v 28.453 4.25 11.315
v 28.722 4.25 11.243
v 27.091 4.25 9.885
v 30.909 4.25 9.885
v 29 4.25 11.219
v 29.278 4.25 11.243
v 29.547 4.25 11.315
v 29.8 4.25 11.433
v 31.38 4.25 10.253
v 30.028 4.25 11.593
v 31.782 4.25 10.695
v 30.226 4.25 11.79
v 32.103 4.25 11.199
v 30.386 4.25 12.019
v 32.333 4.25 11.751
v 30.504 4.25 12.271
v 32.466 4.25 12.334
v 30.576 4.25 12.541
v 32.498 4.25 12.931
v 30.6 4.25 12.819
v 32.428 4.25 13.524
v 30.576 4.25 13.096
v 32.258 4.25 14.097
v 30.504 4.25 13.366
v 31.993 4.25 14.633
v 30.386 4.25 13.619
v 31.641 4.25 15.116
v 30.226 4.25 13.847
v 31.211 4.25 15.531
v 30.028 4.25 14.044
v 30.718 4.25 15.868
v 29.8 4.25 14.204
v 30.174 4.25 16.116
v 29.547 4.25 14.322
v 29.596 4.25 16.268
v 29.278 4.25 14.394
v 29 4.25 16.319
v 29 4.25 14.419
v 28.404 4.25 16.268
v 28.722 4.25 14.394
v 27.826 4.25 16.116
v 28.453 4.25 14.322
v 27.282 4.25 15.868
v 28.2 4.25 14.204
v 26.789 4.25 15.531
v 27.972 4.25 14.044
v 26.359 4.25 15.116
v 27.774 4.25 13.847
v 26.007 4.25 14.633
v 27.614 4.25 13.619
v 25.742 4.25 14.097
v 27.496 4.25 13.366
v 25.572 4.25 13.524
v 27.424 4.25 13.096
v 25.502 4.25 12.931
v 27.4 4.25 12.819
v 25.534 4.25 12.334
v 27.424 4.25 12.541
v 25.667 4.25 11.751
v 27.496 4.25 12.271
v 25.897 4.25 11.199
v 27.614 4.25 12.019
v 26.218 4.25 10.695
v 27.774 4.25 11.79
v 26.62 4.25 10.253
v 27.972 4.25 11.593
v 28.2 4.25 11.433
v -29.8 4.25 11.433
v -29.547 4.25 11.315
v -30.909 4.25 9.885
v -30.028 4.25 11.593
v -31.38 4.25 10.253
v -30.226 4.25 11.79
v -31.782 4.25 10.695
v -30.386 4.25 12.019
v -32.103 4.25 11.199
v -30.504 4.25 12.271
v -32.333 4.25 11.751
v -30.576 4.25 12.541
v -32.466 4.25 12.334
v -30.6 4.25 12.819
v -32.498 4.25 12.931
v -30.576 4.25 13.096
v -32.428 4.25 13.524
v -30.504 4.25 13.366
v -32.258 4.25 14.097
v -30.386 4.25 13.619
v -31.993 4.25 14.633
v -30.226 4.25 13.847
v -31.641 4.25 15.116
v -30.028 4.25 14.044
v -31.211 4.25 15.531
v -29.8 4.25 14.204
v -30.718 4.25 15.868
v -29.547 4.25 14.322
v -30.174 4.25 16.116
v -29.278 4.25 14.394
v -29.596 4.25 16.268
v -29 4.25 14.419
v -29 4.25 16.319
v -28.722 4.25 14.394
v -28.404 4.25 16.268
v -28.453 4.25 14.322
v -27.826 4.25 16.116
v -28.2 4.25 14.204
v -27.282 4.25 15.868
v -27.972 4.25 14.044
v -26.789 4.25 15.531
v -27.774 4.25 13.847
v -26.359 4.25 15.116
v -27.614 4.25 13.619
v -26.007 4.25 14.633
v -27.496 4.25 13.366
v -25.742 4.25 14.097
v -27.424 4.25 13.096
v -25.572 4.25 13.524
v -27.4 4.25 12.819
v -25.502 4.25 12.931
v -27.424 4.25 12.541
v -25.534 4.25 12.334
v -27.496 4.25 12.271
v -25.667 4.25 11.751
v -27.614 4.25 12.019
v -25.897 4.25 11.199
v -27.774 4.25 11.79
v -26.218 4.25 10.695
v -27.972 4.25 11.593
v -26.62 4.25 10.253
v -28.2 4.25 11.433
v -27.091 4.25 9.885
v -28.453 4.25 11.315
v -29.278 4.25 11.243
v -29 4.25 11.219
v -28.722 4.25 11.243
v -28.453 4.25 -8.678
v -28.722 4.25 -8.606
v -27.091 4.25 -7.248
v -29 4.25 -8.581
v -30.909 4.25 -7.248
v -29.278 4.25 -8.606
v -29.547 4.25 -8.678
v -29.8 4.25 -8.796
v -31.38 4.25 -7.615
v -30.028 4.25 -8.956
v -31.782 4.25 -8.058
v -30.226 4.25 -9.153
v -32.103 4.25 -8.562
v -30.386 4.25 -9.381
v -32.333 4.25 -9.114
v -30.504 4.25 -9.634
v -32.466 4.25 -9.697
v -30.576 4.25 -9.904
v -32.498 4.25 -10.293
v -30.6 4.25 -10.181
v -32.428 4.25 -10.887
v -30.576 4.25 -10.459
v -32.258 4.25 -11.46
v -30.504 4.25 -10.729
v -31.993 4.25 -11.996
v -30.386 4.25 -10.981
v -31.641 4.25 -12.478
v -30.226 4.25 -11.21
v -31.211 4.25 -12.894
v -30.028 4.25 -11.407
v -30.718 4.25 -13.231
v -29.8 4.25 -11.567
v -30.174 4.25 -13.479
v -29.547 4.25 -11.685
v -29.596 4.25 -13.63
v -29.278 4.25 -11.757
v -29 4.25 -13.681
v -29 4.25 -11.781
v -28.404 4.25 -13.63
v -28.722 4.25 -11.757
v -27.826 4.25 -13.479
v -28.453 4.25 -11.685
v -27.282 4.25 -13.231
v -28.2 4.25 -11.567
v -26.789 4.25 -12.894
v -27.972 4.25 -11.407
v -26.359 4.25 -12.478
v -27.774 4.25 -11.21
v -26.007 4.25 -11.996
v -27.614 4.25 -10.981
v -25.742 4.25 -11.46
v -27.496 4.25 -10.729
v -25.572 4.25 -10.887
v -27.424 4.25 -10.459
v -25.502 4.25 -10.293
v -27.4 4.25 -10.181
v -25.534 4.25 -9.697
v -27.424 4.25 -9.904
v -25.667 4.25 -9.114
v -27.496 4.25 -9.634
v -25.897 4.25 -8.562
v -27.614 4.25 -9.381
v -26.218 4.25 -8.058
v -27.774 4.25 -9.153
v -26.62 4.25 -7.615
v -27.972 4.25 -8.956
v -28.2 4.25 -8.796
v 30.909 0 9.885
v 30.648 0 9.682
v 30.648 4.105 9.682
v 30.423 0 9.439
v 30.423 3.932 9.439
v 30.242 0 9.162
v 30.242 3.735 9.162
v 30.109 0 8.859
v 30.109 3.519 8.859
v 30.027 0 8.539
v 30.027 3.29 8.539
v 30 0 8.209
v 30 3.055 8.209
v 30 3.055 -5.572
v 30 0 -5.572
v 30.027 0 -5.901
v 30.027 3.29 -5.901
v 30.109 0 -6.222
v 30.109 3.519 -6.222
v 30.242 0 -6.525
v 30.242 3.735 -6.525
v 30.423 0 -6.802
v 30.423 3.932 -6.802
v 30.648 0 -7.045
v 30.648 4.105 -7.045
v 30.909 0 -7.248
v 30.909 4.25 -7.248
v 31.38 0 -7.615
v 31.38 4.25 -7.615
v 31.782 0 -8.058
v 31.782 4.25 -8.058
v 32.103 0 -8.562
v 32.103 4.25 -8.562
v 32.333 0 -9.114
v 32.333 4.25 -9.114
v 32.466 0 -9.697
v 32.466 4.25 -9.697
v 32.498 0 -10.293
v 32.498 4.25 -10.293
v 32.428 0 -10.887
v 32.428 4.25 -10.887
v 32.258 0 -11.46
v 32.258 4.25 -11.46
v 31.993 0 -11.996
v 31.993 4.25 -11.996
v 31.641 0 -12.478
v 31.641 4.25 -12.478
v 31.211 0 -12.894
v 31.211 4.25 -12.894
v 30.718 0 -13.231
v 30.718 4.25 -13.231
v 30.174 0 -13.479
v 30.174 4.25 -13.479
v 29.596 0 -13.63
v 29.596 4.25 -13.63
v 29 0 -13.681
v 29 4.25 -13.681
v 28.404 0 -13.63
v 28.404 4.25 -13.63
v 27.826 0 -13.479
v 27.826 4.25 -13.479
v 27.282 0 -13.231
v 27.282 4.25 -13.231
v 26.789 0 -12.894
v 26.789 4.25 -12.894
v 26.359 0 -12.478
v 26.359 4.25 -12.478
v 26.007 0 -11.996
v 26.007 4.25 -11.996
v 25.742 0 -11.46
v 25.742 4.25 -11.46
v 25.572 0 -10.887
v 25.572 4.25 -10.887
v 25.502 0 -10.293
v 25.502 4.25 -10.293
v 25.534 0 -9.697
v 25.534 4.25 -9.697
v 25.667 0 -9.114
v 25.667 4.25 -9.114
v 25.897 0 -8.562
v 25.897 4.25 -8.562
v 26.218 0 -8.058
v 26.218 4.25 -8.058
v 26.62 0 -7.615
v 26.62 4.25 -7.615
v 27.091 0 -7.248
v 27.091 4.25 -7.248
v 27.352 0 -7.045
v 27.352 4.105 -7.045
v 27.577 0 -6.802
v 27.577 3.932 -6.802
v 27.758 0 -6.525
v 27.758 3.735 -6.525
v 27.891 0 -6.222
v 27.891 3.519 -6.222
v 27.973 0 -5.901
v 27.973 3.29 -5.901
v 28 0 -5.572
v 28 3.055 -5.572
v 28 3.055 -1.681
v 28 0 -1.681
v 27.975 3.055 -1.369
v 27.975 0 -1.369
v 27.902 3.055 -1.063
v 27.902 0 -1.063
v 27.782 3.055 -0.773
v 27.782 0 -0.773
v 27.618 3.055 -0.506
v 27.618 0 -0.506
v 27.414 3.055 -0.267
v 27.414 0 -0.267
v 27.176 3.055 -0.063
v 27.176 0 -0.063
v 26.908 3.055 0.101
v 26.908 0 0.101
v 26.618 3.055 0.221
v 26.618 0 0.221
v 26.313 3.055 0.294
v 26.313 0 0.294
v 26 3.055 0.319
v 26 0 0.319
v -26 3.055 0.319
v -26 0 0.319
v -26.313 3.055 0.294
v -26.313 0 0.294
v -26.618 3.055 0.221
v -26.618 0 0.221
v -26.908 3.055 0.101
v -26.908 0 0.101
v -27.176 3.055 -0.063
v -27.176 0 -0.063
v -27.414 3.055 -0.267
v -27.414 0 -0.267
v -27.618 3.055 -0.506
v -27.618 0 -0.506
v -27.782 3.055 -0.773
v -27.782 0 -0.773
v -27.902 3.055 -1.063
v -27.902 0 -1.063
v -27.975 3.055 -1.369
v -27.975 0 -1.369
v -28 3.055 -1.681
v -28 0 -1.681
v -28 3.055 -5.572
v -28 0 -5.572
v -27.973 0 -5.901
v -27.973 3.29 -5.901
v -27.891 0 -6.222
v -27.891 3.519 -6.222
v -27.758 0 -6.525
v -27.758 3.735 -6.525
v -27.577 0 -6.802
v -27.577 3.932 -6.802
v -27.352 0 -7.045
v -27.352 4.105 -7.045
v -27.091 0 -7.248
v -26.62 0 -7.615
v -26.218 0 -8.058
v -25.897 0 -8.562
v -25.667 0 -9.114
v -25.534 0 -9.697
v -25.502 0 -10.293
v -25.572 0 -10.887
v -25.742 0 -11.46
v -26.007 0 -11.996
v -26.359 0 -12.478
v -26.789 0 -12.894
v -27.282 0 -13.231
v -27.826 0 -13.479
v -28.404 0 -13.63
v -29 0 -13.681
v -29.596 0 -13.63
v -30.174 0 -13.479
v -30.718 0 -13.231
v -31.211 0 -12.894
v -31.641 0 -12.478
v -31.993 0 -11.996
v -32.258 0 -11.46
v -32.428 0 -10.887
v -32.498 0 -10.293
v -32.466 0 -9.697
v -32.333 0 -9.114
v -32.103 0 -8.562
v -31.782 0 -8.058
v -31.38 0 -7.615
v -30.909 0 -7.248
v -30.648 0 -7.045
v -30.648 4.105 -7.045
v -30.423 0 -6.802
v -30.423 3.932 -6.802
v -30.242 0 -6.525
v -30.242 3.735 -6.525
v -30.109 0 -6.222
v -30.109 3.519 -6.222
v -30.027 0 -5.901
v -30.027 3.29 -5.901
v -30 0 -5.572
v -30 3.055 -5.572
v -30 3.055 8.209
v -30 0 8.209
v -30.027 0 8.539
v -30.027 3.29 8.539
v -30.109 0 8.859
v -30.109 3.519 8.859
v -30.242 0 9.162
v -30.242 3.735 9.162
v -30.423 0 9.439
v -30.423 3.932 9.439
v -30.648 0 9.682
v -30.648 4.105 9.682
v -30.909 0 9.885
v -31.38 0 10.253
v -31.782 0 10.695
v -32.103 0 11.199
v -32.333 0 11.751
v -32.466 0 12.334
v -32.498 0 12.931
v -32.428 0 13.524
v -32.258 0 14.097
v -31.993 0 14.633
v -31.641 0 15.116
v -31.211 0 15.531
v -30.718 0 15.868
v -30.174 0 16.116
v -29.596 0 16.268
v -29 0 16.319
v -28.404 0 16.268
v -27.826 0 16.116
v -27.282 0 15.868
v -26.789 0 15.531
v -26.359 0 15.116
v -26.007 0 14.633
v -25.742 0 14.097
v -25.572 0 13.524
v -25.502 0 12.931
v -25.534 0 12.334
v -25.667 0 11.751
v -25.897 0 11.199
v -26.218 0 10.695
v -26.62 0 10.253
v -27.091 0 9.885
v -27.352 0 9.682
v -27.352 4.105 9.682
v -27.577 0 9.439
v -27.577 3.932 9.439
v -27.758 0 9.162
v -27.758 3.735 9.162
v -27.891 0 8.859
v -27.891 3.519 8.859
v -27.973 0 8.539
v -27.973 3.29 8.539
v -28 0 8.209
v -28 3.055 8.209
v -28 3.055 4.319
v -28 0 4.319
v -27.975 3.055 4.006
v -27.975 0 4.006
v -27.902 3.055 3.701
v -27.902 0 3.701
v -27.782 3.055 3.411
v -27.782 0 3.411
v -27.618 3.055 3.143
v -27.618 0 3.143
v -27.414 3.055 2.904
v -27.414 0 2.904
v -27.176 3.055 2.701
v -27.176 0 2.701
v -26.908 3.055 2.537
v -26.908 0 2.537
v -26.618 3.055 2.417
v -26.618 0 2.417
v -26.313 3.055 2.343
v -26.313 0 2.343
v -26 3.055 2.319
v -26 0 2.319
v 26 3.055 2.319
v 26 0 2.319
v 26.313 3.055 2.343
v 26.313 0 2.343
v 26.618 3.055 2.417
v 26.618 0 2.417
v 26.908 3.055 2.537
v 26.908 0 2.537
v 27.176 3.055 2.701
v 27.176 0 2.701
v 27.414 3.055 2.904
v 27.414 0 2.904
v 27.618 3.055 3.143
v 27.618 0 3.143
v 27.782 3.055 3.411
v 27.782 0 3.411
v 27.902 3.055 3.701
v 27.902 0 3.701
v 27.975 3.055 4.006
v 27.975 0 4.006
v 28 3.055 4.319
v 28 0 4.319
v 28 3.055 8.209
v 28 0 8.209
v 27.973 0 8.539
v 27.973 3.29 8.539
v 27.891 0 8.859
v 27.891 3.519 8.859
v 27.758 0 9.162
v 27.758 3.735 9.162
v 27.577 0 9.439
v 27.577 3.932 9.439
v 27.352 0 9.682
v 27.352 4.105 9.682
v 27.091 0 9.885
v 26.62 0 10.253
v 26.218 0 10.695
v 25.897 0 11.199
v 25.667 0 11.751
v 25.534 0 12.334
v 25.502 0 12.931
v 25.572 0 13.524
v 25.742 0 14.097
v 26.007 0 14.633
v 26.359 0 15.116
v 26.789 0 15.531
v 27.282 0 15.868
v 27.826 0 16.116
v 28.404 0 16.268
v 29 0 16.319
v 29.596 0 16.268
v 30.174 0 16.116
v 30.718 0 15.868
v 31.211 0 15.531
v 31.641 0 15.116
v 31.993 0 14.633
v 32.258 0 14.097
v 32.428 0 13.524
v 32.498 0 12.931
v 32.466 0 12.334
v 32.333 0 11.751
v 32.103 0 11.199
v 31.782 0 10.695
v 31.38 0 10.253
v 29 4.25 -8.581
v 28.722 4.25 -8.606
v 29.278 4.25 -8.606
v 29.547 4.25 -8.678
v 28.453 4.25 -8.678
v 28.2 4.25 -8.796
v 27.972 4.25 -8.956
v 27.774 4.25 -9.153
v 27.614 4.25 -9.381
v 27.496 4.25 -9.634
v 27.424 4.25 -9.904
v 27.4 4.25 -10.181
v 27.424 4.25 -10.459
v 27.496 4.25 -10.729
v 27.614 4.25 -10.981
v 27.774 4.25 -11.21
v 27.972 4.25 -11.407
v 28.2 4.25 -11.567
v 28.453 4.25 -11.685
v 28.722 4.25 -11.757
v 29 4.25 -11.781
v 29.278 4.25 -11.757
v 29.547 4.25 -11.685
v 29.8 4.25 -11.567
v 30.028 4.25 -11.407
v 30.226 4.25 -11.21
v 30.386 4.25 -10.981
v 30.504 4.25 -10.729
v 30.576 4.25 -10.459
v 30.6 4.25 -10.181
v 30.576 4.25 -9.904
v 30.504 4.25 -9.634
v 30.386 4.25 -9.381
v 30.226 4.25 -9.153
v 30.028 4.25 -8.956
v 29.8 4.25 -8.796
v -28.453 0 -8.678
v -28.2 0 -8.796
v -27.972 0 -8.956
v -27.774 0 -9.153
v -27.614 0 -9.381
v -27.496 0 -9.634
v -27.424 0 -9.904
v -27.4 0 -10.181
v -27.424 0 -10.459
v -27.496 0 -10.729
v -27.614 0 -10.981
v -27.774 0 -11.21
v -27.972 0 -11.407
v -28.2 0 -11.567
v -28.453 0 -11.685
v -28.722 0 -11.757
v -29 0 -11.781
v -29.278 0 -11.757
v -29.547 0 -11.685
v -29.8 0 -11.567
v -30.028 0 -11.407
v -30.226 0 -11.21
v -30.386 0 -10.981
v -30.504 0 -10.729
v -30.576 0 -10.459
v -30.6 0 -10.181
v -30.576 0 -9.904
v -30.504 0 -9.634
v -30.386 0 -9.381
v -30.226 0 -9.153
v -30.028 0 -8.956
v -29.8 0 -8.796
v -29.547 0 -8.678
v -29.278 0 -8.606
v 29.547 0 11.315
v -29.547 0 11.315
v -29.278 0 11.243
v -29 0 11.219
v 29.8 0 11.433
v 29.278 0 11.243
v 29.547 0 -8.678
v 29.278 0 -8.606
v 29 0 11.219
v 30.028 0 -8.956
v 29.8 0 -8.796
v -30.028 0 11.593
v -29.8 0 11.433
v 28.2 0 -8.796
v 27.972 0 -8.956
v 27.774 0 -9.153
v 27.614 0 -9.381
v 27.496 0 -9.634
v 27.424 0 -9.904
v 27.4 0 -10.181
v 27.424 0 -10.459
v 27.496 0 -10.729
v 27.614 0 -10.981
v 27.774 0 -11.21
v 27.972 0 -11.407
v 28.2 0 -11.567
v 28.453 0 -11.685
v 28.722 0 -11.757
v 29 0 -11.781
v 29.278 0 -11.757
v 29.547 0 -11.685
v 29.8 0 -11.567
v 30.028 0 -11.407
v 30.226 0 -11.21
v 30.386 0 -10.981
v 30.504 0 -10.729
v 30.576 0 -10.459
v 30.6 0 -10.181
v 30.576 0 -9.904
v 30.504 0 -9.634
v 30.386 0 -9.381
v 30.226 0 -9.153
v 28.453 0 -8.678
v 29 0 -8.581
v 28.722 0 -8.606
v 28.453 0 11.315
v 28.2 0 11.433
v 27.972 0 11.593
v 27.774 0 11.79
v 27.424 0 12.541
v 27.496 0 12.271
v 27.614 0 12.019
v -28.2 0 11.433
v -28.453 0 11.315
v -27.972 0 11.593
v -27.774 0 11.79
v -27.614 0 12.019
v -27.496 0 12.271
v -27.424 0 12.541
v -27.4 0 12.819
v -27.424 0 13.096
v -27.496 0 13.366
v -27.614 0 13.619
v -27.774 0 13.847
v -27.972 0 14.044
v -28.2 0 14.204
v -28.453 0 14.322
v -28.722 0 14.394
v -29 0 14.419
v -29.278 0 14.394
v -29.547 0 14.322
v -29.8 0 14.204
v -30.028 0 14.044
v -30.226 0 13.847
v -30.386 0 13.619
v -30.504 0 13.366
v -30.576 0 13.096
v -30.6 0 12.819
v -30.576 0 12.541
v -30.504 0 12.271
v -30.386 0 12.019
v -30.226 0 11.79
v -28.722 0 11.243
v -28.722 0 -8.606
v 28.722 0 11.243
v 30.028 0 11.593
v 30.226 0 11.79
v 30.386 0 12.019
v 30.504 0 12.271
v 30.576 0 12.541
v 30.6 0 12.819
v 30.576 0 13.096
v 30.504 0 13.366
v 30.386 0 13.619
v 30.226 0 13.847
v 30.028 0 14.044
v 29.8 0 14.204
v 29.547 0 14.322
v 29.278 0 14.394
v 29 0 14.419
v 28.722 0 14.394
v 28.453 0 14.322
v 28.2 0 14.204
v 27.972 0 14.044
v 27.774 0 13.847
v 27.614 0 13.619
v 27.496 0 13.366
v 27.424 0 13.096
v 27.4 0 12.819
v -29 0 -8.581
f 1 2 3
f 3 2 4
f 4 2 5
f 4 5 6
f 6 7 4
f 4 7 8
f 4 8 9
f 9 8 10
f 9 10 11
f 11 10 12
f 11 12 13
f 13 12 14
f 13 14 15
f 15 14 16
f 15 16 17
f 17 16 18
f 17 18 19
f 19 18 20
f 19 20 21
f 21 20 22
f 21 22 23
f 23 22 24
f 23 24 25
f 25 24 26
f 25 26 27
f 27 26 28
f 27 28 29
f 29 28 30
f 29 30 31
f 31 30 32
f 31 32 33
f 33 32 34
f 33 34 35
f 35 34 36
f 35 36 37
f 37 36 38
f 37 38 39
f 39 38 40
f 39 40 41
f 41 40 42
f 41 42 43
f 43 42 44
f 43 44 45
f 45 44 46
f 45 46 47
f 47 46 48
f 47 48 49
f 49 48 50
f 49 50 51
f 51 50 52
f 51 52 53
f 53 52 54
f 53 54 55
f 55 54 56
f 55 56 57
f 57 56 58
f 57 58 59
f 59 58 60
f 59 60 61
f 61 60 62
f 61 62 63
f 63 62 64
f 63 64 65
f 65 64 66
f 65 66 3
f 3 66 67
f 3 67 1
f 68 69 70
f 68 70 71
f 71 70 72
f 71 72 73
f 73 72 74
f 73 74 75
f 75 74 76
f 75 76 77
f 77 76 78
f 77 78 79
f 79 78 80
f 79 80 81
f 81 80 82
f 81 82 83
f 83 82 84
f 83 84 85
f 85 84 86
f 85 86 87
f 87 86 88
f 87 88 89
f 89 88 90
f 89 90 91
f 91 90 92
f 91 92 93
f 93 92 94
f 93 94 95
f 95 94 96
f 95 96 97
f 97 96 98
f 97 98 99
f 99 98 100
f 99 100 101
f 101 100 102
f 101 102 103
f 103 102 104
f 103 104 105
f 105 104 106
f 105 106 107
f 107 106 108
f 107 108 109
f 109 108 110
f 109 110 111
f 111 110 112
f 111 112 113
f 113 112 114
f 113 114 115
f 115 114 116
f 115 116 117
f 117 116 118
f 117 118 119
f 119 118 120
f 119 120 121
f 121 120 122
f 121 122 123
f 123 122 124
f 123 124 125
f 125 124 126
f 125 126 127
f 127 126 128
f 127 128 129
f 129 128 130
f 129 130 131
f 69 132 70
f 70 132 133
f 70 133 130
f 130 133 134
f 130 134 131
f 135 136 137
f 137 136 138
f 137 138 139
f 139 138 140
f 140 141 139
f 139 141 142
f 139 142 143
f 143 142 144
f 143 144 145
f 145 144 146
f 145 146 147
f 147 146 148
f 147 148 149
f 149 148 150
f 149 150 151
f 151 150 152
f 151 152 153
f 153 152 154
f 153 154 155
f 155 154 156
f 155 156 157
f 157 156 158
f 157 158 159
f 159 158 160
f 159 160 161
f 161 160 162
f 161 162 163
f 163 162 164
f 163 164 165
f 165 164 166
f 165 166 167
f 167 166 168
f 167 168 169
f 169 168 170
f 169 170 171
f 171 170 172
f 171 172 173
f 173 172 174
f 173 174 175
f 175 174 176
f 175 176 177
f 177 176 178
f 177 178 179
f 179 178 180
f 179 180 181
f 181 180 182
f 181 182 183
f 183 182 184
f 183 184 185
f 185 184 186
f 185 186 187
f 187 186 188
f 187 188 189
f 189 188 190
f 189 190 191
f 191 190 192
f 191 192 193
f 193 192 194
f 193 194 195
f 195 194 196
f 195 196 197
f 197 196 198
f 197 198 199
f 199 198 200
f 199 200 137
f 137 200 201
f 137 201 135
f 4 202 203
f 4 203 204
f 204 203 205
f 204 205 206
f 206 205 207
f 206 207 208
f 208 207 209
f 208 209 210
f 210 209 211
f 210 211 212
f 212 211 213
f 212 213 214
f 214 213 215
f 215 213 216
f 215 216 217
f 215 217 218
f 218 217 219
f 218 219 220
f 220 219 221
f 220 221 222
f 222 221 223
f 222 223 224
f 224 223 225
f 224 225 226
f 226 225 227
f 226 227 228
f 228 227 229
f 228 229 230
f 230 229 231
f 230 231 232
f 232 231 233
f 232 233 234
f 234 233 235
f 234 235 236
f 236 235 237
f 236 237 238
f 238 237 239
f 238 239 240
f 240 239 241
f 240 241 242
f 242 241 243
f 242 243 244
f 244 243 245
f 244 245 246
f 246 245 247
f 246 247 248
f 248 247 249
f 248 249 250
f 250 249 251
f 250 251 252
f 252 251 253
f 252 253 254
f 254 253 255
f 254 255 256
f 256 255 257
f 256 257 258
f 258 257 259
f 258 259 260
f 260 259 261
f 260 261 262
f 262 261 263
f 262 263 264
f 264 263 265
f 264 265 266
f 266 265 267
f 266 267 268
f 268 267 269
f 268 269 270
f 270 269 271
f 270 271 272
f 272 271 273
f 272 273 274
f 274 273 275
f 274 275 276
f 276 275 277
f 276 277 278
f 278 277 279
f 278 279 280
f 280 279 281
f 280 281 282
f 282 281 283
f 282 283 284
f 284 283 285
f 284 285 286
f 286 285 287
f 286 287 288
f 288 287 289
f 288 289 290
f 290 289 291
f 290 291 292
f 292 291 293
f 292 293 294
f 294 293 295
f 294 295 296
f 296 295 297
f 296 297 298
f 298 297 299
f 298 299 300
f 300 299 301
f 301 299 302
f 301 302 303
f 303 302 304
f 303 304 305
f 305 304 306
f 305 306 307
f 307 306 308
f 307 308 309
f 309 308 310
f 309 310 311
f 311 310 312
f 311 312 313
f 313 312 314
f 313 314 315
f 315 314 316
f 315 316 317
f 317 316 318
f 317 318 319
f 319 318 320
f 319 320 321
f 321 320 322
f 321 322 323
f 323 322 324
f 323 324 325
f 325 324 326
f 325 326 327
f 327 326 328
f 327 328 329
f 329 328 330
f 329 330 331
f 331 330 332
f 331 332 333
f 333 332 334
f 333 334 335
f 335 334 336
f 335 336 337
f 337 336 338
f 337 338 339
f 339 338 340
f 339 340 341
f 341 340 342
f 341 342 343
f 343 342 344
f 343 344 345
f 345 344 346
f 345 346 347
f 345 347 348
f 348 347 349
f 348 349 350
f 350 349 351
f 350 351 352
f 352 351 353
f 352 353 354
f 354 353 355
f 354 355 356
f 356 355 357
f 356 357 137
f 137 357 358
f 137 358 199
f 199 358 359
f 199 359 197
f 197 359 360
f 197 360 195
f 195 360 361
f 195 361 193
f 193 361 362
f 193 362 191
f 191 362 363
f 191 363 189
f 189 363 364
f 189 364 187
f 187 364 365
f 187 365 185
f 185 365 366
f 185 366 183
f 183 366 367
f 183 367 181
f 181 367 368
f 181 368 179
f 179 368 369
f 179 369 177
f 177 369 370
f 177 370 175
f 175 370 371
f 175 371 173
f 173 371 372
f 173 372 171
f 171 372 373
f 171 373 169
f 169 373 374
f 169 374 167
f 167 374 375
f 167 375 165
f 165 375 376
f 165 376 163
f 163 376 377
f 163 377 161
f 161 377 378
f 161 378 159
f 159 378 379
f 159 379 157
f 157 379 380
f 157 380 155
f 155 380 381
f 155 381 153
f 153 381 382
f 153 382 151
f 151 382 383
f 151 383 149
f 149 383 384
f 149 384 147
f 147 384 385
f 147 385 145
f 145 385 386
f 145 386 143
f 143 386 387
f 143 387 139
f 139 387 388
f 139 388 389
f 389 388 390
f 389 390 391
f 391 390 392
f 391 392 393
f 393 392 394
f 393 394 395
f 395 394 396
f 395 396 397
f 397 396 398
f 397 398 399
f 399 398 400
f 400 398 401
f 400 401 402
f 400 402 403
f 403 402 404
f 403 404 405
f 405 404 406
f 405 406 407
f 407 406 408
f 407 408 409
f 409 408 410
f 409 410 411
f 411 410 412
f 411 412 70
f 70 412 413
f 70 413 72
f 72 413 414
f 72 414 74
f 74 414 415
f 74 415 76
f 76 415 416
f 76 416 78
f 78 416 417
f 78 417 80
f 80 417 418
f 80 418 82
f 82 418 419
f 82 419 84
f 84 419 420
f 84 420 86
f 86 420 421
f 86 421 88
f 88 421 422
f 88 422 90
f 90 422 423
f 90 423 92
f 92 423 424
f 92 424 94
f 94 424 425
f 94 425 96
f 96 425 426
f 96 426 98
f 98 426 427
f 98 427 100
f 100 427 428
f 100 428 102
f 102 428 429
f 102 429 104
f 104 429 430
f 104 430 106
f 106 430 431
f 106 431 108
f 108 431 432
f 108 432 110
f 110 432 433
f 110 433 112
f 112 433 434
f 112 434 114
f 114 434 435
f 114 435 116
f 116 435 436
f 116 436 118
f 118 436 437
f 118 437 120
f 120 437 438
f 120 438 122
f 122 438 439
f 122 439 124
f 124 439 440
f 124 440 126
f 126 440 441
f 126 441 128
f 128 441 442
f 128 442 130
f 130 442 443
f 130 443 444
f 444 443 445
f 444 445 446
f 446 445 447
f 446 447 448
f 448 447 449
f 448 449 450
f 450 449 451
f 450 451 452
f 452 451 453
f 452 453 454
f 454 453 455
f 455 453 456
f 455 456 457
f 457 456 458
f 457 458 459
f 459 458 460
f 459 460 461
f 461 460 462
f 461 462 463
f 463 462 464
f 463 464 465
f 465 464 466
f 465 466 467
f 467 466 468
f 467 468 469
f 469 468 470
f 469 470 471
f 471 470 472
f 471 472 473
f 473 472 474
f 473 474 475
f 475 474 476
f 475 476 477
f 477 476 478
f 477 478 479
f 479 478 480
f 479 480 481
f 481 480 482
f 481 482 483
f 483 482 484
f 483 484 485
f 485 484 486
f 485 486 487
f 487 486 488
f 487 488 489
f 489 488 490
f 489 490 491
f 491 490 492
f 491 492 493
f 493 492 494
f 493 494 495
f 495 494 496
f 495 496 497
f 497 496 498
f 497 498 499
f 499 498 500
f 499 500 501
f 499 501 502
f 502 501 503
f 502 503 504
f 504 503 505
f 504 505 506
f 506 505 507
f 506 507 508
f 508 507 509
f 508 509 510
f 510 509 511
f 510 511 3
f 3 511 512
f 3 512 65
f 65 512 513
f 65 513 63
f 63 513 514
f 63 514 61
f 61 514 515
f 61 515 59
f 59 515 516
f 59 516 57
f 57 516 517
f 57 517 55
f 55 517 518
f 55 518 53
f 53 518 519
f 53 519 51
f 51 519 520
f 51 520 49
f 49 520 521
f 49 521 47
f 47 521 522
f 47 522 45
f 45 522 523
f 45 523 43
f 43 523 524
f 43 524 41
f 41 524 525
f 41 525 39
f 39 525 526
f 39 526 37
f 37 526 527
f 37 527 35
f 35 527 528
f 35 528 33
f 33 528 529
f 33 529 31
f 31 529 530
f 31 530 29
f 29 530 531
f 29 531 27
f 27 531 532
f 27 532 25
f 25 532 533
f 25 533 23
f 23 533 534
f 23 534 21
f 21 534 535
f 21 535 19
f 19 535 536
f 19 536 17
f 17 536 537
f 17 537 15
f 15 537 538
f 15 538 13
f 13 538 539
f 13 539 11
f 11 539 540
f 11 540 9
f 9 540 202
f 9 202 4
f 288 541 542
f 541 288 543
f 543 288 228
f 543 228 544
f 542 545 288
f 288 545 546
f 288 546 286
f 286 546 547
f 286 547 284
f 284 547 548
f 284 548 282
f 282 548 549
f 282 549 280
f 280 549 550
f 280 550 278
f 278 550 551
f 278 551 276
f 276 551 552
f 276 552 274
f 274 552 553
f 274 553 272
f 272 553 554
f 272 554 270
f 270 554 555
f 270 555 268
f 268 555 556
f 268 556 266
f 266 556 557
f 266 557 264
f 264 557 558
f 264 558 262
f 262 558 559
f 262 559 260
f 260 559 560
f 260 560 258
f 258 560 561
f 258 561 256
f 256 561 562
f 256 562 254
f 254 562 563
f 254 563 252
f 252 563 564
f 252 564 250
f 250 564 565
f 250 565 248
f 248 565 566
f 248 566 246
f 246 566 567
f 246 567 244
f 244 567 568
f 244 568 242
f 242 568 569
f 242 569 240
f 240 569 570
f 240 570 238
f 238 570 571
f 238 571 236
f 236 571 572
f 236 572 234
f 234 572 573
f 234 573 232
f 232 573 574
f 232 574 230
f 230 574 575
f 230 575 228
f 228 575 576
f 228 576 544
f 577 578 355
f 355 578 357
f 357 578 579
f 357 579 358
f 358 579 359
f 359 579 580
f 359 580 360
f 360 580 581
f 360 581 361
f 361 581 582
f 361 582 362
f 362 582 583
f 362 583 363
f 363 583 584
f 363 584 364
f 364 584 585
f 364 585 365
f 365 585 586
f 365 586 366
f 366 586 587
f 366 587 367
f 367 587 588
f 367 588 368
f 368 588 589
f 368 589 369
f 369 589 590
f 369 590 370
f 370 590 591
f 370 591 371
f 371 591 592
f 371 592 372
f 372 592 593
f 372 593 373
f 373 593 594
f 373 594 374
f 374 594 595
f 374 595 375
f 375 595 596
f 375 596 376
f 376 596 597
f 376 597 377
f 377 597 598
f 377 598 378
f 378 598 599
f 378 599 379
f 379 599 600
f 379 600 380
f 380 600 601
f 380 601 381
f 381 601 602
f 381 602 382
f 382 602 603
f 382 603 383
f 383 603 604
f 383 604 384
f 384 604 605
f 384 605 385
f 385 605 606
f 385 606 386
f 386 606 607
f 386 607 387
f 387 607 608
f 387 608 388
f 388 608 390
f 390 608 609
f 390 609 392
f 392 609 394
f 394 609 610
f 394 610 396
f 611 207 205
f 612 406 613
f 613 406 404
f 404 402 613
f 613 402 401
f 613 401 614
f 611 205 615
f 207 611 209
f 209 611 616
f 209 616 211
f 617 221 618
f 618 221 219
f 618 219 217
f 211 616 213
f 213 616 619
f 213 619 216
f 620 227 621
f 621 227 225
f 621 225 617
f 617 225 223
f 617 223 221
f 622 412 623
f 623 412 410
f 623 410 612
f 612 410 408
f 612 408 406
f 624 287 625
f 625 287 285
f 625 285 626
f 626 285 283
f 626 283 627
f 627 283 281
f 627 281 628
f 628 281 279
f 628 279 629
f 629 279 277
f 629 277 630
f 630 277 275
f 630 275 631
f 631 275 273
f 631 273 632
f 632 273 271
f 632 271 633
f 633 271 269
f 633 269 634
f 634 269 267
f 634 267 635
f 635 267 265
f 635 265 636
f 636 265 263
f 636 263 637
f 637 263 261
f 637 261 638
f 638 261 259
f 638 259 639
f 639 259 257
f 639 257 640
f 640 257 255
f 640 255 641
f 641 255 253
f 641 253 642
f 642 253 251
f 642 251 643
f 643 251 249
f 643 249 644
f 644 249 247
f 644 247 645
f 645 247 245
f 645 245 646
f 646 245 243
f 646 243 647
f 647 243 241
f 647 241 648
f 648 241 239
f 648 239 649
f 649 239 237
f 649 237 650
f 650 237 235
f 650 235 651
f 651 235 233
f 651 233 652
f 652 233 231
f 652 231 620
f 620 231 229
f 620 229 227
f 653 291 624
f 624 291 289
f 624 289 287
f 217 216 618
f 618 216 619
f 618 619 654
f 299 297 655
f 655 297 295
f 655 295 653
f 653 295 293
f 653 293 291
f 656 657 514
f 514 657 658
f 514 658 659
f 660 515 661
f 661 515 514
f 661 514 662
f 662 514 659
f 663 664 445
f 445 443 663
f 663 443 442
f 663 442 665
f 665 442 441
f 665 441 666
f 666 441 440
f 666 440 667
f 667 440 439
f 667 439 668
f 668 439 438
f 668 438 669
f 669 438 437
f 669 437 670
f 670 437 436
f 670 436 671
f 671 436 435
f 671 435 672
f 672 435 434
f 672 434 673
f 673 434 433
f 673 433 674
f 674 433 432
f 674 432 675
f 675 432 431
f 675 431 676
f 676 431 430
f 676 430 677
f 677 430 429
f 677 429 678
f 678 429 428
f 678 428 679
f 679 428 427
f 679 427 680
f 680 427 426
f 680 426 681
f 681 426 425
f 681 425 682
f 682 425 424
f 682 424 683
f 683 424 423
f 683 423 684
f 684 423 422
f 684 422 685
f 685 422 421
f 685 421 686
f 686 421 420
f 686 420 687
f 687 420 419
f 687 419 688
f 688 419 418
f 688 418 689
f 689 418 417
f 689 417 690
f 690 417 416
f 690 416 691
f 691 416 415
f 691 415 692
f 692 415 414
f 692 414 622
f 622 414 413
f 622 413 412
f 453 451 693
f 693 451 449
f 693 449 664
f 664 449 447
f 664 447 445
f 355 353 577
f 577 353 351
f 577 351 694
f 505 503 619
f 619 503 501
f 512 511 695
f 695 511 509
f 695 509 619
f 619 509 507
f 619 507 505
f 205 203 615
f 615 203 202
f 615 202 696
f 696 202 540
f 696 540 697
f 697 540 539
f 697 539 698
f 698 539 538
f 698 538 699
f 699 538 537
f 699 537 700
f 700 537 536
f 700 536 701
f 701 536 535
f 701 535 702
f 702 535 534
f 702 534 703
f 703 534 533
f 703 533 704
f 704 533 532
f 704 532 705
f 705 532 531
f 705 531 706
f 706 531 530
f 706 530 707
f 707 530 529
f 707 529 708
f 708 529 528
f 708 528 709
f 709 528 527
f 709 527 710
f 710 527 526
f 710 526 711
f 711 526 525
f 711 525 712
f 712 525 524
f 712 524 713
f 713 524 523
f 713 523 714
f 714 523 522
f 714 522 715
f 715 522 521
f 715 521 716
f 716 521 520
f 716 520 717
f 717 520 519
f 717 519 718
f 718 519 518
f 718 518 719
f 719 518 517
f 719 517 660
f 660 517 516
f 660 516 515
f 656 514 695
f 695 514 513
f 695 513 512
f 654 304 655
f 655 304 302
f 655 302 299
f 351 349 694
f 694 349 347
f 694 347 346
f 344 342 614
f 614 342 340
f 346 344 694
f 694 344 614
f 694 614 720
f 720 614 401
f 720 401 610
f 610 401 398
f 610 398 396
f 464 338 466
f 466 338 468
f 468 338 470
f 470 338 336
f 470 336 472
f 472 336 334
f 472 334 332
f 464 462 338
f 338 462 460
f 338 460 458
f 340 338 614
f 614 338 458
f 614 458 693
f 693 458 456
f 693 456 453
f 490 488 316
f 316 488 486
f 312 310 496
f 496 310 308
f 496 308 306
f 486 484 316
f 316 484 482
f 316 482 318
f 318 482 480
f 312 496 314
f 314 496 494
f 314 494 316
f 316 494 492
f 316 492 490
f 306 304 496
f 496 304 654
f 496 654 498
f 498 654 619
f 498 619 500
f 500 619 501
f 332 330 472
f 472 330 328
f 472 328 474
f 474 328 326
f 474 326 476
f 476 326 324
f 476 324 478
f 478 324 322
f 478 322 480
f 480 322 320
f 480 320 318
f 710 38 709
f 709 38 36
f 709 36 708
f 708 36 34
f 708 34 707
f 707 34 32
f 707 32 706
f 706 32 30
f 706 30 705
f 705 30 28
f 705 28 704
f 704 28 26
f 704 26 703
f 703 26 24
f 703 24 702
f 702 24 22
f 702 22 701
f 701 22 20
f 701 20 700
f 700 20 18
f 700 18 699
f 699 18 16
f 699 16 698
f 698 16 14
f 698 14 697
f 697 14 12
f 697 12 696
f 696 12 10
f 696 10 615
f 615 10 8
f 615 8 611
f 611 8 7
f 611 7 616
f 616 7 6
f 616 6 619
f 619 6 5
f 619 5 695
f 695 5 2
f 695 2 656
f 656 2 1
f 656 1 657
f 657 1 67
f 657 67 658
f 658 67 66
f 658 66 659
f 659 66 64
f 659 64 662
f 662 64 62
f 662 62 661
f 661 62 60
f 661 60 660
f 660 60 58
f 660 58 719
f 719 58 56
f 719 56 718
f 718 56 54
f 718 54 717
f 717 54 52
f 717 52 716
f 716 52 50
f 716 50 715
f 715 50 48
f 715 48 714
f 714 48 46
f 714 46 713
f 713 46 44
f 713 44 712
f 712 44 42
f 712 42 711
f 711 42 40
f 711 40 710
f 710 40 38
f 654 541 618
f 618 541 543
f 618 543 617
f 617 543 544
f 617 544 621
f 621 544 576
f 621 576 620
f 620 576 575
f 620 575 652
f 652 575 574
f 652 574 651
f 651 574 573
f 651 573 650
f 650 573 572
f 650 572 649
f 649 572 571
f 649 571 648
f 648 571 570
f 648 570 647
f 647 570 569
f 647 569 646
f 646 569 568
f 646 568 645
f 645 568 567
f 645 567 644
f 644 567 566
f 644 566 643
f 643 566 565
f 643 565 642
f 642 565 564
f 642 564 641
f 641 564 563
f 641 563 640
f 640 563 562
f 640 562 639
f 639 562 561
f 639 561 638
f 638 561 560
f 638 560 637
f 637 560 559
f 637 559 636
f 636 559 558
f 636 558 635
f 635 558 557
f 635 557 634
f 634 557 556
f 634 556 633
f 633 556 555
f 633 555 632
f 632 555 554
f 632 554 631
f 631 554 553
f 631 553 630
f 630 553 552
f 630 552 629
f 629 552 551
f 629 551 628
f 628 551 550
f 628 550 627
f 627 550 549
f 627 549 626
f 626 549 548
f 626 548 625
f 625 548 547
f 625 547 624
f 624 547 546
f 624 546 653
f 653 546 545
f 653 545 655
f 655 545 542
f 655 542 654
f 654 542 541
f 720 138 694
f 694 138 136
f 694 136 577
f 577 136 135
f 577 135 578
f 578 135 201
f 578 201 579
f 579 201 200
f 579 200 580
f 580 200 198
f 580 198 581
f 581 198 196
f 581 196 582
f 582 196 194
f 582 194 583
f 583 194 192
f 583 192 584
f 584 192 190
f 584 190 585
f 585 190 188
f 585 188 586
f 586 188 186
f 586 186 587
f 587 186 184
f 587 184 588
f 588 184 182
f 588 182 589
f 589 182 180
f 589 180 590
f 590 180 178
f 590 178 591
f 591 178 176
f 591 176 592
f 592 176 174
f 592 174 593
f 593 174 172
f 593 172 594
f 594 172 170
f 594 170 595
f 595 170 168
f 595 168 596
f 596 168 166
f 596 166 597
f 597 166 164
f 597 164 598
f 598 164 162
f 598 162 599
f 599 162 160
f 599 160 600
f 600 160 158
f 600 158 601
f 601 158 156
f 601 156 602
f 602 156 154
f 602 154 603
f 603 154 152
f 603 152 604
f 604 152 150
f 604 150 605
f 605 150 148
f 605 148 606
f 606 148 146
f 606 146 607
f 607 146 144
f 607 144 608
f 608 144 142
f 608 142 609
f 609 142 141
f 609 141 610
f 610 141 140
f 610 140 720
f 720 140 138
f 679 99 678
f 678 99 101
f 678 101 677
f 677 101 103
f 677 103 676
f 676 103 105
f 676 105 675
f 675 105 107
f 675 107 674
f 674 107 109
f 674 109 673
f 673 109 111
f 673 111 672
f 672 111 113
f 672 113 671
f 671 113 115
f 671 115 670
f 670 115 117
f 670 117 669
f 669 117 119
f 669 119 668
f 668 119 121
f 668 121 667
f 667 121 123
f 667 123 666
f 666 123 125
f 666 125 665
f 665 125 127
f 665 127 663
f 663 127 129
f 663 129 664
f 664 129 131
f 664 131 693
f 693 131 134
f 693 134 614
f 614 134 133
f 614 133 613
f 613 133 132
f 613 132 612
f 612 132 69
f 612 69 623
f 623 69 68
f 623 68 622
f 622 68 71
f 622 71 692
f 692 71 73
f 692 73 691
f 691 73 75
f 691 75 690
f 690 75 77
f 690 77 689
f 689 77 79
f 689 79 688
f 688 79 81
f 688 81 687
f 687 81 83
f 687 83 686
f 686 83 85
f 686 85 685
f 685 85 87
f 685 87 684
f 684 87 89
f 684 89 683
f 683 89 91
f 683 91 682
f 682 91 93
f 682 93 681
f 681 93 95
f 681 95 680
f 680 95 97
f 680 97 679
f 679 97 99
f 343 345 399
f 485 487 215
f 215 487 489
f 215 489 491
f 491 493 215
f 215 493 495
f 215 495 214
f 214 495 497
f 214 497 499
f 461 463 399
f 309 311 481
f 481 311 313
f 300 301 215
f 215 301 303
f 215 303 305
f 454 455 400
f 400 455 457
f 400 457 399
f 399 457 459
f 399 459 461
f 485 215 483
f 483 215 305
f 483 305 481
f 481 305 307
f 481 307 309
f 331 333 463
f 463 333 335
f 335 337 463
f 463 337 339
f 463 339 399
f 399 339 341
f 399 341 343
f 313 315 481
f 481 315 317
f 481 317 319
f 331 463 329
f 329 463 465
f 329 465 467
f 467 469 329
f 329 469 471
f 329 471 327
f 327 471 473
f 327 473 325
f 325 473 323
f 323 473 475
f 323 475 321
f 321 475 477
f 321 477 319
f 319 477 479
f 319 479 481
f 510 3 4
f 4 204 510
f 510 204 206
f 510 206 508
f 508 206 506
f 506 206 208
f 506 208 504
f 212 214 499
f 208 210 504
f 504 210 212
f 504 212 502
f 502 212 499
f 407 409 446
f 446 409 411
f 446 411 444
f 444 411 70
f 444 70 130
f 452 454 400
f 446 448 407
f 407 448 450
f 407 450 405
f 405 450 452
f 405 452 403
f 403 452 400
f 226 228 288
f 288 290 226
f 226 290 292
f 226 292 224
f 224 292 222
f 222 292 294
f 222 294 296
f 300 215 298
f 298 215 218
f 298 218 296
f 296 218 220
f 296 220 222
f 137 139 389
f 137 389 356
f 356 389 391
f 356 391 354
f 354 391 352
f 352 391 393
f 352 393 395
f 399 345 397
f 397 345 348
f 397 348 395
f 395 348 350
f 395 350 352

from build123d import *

# Parameters (mm, degrees)
BOSS_EXTRUDE1_DEPTH        = 4.25
F_3_2_3_2_DIAMETER_HOLE1_D = 3.2
CUT_EXTRUDE1_DEPTH         = 37.614339148
CUT_EXTRUDE1_DEPTH_BACK    = 37.614339148


with BuildPart() as part:
    # Sketch2 → Boss-Extrude1 (new body)
    with BuildSketch(Plane(origin=(0, 0, 0), x_dir=(1, 0, 0), z_dir=(0, 1, 0))):
        with BuildLine():
            Line((-26, -2.318619158), (26, -2.318619158))
            ThreePointArc((26, -2.318619158), (27.414213562, -2.904405596), (28, -4.318619158))
            Line((28, -4.318619158), (28, -8.208846929))
            ThreePointArc((28, -8.208846929), (27.758098146, -9.162309518), (27.090909091, -9.88512774))
            ThreePointArc((27.090909091, -9.88512774), (29, -16.318619158), (30.909090909, -9.88512774))
            ThreePointArc((30.909090909, -9.88512774), (30.241901854, -9.162309518), (30, -8.208846929))
            Line((30, -8.208846929), (30, 5.571608613))
            ThreePointArc((30, 5.571608613), (30.241901854, 6.525071203), (30.909090909, 7.247889424))
            ThreePointArc((30.909090909, 7.247889424), (29, 13.681380842), (27.090909091, 7.247889424))
            ThreePointArc((27.090909091, 7.247889424), (27.758098146, 6.525071203), (28, 5.571608613))
            Line((28, 5.571608613), (28, 1.681380842))
            ThreePointArc((28, 1.681380842), (27.414213562, 0.26716728), (26, -0.318619158))
            Line((26, -0.318619158), (-26, -0.318619158))
            ThreePointArc((-26, -0.318619158), (-27.414213562, 0.26716728), (-28, 1.681380842))
            Line((-28, 1.681380842), (-28, 5.571608613))
            ThreePointArc((-28, 5.571608613), (-27.758098146, 6.525071203), (-27.090909091, 7.247889424))
            ThreePointArc((-27.090909091, 7.247889424), (-29, 13.681380842), (-30.909090909, 7.247889424))
            ThreePointArc((-30.909090909, 7.247889424), (-30.241901854, 6.525071203), (-30, 5.571608613))
            Line((-30, 5.571608613), (-30, -8.208846929))
            ThreePointArc((-30, -8.208846929), (-30.241901854, -9.162309518), (-30.909090909, -9.88512774))
            ThreePointArc((-30.909090909, -9.88512774), (-29, -16.318619158), (-27.090909091, -9.88512774))
            ThreePointArc((-27.090909091, -9.88512774), (-27.758098146, -9.162309518), (-28, -8.208846929))
            Line((-28, -8.208846929), (-28, -4.318619158))
            ThreePointArc((-28, -4.318619158), (-27.414213562, -2.904405596), (-26, -2.318619158))
        make_face()
    extrude(amount=BOSS_EXTRUDE1_DEPTH)

    # Ø3.2 (3.2) Diameter Hole1 (through all)
    with Locations(Plane(origin=(0, 4.25, 0), x_dir=(1, 0, 0), z_dir=(0, 1, 0))):
        with Locations((-29, -12.818619158), (-29, 10.181380842), (29, 10.181380842), (29, -12.818619158)):
            Hole(F_3_2_3_2_DIAMETER_HOLE1_D / 2)

    # Sketch5 → Cut-Extrude1 (cut, two sides: drawn at the far end of the back side and taken through both)
    with BuildSketch(Plane(origin=(0, 0, 0), x_dir=(0, 0, -1), z_dir=(1, 0, 0)).offset(-CUT_EXTRUDE1_DEPTH_BACK)):
        Polygon((-8.208846929, 3.055472707), (5.571608613, 3.055472707), (7.247889424, 4.25), (-9.88512774, 4.25), align=None)
    extrude(amount=CUT_EXTRUDE1_DEPTH + CUT_EXTRUDE1_DEPTH_BACK, mode=Mode.SUBTRACT)


solid = part.part
